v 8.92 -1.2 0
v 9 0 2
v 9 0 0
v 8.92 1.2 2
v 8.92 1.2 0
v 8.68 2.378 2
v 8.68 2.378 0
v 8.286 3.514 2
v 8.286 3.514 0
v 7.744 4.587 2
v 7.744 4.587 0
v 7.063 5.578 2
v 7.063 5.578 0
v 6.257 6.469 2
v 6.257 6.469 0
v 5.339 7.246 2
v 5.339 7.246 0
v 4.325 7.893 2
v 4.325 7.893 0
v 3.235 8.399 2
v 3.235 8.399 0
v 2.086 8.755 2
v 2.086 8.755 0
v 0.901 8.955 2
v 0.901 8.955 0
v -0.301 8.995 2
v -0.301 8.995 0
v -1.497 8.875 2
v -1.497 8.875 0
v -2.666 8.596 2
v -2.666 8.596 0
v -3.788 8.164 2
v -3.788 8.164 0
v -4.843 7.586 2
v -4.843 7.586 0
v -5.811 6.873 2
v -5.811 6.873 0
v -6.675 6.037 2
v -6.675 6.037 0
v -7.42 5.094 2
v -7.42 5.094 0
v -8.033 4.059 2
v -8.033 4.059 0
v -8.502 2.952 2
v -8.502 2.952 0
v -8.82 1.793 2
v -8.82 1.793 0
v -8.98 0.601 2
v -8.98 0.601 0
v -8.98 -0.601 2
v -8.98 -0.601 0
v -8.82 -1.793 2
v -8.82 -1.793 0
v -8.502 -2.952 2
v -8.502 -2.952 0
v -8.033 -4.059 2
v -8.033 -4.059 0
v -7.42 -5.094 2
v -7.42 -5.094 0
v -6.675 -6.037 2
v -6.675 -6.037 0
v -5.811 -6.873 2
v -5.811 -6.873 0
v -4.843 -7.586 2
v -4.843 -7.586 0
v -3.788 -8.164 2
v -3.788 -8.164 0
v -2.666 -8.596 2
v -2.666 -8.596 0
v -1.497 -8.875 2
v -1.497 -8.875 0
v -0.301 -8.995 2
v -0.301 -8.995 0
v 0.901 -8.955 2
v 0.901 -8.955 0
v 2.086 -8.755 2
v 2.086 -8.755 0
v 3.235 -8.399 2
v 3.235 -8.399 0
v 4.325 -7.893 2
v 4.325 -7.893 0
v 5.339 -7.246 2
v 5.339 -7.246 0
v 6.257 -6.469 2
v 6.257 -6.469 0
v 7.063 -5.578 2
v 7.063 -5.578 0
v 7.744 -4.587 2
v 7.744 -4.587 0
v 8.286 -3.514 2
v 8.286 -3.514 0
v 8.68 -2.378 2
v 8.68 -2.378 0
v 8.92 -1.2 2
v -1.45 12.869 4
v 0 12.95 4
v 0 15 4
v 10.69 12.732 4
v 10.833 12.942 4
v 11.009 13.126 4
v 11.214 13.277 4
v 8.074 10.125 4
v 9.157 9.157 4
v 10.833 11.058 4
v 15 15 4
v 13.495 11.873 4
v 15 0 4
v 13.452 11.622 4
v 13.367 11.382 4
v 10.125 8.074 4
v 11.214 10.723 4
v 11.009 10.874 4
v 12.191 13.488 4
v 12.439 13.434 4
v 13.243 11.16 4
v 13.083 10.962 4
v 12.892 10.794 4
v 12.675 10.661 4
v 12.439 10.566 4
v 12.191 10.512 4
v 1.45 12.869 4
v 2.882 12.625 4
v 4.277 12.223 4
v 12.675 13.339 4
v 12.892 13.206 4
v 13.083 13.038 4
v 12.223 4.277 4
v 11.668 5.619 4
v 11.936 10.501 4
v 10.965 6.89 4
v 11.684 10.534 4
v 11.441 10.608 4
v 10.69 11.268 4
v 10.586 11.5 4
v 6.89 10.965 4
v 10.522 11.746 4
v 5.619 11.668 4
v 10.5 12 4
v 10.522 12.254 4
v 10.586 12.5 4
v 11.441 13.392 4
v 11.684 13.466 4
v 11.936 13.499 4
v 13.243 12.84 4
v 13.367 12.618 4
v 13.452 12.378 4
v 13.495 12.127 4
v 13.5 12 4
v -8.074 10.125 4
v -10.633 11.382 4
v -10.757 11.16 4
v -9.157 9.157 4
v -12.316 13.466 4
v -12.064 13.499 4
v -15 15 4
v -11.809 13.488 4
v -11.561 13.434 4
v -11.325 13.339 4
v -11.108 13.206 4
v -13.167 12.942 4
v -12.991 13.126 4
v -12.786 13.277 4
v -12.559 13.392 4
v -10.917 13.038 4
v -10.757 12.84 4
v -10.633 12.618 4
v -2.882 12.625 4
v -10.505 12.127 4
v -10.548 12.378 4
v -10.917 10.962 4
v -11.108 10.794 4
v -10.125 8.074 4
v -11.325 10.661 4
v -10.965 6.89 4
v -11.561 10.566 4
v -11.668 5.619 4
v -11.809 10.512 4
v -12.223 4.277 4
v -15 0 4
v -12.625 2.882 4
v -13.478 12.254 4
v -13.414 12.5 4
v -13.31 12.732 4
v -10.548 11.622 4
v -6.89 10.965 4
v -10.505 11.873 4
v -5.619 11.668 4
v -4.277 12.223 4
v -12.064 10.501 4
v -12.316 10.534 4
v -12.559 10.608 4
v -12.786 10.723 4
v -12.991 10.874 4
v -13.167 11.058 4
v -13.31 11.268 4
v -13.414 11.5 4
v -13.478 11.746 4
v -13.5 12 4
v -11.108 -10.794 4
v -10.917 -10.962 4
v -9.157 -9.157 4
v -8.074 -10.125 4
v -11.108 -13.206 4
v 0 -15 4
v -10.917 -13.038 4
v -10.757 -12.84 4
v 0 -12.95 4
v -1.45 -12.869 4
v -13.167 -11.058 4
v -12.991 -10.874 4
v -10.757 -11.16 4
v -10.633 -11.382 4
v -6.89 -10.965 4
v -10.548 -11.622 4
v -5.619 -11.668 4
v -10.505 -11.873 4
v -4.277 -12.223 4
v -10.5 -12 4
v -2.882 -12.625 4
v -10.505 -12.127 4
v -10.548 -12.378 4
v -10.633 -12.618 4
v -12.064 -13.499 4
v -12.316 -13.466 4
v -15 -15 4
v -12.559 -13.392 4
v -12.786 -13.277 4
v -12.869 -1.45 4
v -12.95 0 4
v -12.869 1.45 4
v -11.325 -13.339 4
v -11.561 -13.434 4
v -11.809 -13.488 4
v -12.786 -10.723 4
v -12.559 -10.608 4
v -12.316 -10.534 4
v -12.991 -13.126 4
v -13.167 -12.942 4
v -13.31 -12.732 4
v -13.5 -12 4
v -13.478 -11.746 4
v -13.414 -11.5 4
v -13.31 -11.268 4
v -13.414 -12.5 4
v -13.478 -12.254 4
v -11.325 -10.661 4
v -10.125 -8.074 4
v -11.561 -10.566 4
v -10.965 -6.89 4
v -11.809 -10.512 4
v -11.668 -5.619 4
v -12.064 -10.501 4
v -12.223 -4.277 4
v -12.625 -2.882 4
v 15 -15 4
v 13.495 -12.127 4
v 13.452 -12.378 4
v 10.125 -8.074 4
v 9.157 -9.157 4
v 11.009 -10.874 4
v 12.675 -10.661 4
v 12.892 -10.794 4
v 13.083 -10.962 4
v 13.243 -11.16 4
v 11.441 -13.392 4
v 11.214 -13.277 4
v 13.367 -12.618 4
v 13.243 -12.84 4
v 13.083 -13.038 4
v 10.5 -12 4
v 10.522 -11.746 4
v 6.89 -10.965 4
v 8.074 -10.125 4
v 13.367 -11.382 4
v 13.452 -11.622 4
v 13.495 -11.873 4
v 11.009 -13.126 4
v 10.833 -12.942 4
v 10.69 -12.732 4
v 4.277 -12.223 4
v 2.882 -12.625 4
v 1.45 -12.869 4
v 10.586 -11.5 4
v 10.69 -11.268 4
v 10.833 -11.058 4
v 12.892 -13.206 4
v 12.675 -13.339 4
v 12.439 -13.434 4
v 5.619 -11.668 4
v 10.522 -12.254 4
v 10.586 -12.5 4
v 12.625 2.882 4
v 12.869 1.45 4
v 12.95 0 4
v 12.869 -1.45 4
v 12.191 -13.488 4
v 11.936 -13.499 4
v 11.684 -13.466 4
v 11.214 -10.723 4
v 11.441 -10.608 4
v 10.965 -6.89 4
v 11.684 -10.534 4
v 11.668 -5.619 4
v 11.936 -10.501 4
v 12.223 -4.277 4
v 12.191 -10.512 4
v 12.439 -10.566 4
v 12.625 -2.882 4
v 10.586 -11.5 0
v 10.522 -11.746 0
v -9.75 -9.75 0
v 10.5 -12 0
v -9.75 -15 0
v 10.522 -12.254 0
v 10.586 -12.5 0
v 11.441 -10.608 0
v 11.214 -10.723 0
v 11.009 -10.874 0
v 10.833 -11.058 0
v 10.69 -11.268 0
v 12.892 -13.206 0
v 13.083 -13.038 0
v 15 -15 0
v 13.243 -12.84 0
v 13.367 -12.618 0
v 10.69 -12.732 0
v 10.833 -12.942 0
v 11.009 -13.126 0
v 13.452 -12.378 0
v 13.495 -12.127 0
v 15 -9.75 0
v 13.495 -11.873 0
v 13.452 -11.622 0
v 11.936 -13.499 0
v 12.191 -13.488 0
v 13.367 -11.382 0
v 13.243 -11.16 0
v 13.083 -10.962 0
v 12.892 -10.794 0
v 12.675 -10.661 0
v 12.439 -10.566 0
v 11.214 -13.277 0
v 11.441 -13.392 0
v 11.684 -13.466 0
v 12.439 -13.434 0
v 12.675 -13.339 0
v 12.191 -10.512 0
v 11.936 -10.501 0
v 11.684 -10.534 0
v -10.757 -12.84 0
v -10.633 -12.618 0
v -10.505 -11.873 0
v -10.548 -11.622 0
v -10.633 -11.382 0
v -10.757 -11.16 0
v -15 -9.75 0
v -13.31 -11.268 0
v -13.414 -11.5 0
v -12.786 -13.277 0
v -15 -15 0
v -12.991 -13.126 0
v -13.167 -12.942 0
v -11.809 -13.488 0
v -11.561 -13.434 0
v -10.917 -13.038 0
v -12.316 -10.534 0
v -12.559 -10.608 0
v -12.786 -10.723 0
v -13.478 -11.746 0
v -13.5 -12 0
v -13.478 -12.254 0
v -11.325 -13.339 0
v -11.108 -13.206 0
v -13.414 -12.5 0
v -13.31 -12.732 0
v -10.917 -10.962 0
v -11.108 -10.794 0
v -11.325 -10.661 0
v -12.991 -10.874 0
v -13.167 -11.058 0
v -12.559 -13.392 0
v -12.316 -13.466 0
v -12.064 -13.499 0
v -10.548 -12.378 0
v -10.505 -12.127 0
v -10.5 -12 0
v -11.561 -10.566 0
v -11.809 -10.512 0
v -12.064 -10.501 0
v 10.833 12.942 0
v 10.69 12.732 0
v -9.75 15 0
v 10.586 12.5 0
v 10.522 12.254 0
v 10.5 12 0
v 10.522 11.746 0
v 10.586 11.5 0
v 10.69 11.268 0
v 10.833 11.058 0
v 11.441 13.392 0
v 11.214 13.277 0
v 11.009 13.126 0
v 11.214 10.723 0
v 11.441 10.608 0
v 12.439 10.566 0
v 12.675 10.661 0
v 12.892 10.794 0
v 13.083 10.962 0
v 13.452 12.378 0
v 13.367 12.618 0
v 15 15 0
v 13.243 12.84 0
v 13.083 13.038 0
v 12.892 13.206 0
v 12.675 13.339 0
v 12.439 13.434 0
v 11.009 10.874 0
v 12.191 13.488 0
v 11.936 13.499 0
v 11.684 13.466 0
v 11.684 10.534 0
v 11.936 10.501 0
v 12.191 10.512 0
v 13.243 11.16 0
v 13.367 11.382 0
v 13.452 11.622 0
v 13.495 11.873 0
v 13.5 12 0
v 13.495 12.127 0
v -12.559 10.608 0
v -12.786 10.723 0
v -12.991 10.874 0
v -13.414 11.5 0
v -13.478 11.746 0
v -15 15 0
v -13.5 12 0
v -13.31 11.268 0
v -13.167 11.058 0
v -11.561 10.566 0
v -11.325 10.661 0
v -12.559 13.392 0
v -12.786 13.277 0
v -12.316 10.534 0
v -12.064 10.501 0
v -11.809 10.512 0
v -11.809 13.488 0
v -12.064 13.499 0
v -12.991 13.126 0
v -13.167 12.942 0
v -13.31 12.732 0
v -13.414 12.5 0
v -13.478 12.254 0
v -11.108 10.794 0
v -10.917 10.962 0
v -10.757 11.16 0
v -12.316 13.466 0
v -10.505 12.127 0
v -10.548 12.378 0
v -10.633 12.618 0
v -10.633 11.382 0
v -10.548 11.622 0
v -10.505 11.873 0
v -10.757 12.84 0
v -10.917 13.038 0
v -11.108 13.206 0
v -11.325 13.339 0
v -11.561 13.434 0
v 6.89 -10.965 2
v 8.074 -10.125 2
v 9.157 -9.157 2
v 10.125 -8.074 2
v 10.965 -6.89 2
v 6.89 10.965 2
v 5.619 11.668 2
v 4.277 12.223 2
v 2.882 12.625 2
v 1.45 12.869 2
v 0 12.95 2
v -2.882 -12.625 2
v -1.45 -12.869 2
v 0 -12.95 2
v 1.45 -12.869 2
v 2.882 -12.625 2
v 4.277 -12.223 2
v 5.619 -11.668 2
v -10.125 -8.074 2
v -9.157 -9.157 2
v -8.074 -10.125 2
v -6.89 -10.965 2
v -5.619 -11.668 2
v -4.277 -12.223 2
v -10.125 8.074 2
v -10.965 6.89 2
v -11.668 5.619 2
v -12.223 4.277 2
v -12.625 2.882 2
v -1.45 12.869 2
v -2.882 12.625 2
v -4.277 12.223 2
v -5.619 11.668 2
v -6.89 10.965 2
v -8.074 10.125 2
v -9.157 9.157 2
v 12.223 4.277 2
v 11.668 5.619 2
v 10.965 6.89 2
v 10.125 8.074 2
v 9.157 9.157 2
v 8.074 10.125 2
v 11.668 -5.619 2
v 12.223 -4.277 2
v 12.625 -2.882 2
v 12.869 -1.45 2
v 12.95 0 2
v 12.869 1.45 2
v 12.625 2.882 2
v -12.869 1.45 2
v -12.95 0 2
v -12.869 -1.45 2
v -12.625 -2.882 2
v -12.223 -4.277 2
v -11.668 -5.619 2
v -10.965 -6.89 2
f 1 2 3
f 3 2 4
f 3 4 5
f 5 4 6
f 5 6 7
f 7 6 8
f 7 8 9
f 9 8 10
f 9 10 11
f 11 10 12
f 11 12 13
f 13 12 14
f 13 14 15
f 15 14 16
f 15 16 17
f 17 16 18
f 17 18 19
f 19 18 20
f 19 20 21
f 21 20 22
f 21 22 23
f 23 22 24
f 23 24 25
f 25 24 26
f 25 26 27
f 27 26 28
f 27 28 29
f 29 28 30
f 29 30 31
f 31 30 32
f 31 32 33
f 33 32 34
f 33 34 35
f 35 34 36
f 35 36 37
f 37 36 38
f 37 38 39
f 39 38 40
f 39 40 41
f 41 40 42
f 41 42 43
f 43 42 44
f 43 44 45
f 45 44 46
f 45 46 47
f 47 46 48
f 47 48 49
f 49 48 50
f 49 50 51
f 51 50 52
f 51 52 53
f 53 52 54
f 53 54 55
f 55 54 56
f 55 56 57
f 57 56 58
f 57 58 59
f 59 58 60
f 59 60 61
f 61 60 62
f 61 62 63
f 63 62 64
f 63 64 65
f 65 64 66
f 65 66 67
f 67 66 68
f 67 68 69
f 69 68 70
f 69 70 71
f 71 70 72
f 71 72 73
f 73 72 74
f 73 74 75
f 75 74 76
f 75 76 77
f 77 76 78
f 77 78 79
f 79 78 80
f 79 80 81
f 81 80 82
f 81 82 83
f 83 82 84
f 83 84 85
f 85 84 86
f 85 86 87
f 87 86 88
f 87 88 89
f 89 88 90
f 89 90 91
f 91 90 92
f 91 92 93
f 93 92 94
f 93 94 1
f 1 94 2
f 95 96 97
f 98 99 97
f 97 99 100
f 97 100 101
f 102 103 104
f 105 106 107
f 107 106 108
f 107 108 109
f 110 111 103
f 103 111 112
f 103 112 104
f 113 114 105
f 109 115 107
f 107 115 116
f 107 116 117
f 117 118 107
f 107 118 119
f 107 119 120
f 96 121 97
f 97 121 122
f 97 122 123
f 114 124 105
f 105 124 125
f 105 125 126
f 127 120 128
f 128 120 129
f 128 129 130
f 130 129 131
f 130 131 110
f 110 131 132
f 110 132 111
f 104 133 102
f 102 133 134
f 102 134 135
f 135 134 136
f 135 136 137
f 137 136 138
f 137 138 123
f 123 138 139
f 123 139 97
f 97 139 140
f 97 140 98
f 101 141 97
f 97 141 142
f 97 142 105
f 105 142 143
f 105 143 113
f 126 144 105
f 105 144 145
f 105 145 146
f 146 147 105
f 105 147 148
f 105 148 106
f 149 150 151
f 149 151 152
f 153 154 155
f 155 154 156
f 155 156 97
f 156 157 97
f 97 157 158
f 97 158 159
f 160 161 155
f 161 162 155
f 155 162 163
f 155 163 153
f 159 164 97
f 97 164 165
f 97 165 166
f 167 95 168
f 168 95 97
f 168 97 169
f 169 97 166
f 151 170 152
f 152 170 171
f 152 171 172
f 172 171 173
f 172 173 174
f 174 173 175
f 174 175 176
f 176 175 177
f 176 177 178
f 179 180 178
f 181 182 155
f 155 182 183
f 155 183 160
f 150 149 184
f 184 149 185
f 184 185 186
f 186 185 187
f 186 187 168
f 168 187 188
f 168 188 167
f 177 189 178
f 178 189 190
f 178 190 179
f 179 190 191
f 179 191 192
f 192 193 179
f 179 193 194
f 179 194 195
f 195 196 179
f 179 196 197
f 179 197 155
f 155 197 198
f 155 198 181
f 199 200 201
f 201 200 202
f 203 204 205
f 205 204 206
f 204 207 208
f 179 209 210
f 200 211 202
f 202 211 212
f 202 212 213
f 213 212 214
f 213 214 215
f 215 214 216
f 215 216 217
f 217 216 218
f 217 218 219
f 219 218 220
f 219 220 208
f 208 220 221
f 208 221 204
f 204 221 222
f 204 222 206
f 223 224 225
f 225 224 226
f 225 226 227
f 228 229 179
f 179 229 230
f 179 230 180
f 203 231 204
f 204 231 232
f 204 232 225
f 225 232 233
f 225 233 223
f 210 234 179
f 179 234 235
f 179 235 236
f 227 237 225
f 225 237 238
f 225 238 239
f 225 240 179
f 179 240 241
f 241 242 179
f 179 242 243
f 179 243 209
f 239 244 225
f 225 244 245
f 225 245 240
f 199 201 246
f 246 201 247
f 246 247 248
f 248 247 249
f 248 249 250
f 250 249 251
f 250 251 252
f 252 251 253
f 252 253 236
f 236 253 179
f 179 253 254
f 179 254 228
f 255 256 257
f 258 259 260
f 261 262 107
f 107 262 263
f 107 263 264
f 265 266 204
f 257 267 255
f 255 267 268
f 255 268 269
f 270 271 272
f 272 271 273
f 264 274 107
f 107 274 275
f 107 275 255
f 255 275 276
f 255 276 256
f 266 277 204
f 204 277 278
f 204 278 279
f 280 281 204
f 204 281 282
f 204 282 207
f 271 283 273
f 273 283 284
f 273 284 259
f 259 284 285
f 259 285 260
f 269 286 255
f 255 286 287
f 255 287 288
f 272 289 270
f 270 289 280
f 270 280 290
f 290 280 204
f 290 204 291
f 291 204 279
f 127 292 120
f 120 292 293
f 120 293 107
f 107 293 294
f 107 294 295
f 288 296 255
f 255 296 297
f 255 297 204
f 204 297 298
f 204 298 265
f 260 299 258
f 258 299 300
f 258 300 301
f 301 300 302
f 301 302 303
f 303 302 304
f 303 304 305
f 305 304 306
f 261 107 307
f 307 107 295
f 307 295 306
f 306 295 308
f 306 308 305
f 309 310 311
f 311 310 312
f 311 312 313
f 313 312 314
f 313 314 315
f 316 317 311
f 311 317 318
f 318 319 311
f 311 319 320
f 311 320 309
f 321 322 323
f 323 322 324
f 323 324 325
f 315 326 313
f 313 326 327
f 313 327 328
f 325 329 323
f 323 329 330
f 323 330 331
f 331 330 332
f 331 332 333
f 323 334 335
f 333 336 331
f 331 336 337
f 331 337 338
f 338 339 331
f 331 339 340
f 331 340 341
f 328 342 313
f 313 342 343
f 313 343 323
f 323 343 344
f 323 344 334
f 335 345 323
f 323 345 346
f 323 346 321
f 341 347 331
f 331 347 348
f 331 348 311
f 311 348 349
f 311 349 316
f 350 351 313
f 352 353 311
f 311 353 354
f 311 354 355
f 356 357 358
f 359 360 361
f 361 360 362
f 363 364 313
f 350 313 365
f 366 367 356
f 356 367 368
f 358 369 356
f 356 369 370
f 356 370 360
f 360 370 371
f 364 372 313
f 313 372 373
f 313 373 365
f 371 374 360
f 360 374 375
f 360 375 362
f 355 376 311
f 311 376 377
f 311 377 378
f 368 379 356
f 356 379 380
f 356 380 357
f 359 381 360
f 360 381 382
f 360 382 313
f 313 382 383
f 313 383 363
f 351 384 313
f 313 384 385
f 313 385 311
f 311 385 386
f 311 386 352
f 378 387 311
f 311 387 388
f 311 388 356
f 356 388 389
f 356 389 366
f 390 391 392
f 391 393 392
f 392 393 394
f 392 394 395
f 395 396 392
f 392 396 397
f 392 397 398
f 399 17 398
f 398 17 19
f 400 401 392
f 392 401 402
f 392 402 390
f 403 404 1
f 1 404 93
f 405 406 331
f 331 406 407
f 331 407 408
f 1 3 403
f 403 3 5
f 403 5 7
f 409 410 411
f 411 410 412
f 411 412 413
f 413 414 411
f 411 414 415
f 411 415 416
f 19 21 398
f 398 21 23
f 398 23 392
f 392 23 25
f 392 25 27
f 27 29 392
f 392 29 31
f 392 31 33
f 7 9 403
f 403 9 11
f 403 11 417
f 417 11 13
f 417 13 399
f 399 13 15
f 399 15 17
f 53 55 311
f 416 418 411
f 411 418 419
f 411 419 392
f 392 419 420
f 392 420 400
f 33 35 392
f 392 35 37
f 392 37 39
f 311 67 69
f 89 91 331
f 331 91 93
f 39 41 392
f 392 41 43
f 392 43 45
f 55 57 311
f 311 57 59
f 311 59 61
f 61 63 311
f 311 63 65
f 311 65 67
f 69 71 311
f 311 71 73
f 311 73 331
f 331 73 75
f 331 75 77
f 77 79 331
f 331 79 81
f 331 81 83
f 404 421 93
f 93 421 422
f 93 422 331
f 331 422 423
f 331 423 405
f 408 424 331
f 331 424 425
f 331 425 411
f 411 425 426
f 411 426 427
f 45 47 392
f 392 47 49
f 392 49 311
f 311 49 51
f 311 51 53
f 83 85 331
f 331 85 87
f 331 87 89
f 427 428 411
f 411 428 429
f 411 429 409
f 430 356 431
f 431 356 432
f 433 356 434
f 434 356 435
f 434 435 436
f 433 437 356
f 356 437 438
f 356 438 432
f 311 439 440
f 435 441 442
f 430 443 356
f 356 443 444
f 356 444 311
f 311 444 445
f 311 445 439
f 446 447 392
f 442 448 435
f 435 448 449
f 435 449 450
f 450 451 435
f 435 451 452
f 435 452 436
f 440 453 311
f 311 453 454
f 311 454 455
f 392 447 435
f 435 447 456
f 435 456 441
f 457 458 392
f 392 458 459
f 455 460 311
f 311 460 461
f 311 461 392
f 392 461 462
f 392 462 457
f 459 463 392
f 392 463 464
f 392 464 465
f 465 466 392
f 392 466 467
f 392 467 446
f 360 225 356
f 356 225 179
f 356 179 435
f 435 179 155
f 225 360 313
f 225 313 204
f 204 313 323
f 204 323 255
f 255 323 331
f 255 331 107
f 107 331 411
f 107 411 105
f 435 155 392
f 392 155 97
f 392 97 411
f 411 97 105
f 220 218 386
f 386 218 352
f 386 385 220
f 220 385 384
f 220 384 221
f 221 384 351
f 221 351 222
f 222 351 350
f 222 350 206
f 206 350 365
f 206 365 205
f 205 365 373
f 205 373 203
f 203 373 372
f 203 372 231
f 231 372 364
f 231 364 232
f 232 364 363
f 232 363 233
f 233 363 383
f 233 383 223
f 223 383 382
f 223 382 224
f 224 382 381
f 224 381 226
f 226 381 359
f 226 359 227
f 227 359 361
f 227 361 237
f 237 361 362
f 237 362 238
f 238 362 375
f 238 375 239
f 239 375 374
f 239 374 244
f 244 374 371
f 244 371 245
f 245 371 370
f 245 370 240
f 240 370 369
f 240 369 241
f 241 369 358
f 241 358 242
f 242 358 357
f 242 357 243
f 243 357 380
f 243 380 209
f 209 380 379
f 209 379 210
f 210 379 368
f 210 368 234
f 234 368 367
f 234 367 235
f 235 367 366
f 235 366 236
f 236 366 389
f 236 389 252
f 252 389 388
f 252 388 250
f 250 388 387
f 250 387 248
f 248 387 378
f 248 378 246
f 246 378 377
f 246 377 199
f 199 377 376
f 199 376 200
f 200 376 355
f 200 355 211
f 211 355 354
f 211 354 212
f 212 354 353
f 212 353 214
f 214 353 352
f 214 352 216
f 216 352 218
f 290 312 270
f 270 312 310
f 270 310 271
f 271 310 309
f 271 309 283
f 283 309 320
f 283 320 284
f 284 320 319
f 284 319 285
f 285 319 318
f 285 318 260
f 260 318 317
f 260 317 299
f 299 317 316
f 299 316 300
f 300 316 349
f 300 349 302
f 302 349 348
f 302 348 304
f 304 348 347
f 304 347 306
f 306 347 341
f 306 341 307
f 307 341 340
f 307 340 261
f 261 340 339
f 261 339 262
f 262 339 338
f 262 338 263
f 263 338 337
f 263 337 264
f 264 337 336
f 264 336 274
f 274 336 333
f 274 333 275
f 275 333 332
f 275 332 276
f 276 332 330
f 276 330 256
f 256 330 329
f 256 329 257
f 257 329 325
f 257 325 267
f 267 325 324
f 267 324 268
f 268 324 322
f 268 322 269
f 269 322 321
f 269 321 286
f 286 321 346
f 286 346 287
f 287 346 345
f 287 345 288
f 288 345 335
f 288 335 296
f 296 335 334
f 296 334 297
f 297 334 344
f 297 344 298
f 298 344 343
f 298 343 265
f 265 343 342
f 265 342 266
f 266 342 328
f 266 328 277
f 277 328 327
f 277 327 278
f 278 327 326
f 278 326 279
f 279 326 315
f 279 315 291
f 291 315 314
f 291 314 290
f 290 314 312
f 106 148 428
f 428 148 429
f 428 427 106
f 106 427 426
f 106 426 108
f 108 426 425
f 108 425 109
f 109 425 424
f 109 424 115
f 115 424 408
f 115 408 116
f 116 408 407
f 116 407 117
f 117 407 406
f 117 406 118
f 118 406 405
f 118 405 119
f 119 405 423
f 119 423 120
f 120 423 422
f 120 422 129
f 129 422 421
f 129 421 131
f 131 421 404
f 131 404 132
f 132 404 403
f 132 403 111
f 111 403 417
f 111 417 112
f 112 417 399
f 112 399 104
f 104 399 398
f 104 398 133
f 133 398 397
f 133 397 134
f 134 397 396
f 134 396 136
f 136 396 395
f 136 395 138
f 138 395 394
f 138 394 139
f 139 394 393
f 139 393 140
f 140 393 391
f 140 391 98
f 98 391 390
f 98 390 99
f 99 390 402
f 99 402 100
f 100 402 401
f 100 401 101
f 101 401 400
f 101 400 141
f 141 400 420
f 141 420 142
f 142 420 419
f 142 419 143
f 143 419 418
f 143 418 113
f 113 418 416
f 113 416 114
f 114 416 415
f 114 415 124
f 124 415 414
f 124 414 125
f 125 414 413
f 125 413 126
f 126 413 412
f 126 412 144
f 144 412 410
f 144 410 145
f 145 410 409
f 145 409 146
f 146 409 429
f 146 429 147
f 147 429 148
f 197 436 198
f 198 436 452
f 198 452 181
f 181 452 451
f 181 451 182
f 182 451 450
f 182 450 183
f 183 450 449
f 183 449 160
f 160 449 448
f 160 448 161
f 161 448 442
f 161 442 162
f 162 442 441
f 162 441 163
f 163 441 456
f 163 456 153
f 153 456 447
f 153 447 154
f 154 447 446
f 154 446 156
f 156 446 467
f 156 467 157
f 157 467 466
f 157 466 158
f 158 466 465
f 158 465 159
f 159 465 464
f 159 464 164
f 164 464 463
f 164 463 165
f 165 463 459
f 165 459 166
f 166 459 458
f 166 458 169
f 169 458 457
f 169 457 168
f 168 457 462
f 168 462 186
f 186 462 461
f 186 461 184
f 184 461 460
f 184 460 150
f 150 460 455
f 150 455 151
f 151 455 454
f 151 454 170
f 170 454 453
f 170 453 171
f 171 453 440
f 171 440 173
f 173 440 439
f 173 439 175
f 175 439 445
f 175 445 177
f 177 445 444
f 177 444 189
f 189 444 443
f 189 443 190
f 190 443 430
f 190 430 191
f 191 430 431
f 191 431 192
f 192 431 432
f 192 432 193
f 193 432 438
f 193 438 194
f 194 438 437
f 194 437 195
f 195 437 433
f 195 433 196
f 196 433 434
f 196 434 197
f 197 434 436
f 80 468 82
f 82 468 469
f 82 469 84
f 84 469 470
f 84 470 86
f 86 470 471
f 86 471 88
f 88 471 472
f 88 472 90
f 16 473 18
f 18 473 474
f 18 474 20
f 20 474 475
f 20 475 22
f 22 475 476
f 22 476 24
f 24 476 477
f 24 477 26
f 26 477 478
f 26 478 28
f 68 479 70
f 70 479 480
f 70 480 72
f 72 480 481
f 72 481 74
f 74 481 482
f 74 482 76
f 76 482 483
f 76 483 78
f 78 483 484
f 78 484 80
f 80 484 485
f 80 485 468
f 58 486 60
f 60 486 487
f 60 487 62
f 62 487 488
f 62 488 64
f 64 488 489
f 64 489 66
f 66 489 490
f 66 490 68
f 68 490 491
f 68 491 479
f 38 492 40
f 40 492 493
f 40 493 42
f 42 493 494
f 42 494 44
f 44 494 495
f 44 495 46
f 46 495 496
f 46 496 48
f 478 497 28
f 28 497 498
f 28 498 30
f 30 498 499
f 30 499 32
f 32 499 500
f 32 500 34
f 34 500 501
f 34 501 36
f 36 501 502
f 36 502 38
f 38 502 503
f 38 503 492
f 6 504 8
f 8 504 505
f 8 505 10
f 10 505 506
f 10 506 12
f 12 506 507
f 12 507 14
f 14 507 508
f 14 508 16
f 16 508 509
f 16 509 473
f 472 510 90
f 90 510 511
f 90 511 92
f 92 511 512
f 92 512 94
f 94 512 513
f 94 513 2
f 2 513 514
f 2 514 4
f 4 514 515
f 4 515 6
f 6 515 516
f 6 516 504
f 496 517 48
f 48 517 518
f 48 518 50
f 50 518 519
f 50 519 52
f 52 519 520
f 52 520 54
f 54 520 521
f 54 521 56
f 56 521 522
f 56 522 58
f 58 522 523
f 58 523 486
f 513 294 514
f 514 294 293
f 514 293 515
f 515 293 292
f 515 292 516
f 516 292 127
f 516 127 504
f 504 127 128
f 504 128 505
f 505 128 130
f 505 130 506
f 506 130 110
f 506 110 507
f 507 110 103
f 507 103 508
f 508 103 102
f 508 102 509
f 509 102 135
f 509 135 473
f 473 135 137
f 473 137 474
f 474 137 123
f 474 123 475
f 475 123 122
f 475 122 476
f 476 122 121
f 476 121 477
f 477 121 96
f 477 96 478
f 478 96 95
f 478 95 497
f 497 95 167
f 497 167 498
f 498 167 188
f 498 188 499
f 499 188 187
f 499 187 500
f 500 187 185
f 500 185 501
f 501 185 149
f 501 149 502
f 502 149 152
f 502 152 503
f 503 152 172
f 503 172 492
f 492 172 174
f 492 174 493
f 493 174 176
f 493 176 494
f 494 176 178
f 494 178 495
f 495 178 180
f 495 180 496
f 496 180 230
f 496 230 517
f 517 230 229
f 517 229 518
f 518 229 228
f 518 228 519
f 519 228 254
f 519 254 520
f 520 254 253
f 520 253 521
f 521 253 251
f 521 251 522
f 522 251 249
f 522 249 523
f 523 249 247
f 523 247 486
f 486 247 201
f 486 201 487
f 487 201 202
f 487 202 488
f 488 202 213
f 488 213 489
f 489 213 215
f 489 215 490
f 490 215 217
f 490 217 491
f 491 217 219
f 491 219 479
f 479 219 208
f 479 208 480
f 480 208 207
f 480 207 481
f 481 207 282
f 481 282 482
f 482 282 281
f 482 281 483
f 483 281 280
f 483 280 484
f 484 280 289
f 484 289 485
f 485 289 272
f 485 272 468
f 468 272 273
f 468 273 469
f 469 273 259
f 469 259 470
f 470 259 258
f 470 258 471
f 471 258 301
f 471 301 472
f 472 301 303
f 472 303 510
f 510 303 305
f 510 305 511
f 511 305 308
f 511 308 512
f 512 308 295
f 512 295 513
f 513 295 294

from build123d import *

# Parameters (mm, degrees)
ESBO_O1_W                = 30
ESBO_O1_H                = 30
ESBO_O1_R                = 1.5
RESSALTO_EXTRUS_O1_DEPTH = 4
CORTE_EXTRUS_O1_REACH    = 23.587
ESBO_O2_R                = 9
ESBO_O4_R                = 12.95
CORTE_EXTRUS_O2_DEPTH    = 2


with BuildPart() as part:
    # Esboço1 → Ressalto-extrusão1 (new body)
    with BuildSketch(Plane.XY):
        Rectangle(ESBO_O1_W, ESBO_O1_H)
        with Locations((-12, -12)):
            Circle(ESBO_O1_R, mode=Mode.SUBTRACT)
        with Locations(Location((12, -12, 0), (0, 0, 180))):
            Circle(ESBO_O1_R, mode=Mode.SUBTRACT)
        with Locations((12, 12)):
            Circle(ESBO_O1_R, mode=Mode.SUBTRACT)
        with Locations(Location((-12, 12, 0), (0, 0, 180))):
            Circle(ESBO_O1_R, mode=Mode.SUBTRACT)
    extrude(amount=RESSALTO_EXTRUS_O1_DEPTH)

    # Esboço2 → Corte-extrusão1 (cut, up to next)
    with BuildSketch(Plane.XY.offset(4), mode=Mode.PRIVATE) as corte_extrus_o1_sk1:
        Circle(ESBO_O2_R)
    corte_extrus_o1_tool1 = extrude(corte_extrus_o1_sk1.sketch, amount=-CORTE_EXTRUS_O1_REACH, mode=Mode.PRIVATE) & part.part
    add(corte_extrus_o1_tool1.solids().sort_by_distance((0, 0, 4))[0], mode=Mode.SUBTRACT)

    # Esboço4 → Corte-extrusão2 (cut)
    with BuildSketch(Plane.XY.offset(4)):
        Circle(ESBO_O4_R)
    extrude(amount=-CORTE_EXTRUS_O2_DEPTH, mode=Mode.SUBTRACT)


solid = part.part
